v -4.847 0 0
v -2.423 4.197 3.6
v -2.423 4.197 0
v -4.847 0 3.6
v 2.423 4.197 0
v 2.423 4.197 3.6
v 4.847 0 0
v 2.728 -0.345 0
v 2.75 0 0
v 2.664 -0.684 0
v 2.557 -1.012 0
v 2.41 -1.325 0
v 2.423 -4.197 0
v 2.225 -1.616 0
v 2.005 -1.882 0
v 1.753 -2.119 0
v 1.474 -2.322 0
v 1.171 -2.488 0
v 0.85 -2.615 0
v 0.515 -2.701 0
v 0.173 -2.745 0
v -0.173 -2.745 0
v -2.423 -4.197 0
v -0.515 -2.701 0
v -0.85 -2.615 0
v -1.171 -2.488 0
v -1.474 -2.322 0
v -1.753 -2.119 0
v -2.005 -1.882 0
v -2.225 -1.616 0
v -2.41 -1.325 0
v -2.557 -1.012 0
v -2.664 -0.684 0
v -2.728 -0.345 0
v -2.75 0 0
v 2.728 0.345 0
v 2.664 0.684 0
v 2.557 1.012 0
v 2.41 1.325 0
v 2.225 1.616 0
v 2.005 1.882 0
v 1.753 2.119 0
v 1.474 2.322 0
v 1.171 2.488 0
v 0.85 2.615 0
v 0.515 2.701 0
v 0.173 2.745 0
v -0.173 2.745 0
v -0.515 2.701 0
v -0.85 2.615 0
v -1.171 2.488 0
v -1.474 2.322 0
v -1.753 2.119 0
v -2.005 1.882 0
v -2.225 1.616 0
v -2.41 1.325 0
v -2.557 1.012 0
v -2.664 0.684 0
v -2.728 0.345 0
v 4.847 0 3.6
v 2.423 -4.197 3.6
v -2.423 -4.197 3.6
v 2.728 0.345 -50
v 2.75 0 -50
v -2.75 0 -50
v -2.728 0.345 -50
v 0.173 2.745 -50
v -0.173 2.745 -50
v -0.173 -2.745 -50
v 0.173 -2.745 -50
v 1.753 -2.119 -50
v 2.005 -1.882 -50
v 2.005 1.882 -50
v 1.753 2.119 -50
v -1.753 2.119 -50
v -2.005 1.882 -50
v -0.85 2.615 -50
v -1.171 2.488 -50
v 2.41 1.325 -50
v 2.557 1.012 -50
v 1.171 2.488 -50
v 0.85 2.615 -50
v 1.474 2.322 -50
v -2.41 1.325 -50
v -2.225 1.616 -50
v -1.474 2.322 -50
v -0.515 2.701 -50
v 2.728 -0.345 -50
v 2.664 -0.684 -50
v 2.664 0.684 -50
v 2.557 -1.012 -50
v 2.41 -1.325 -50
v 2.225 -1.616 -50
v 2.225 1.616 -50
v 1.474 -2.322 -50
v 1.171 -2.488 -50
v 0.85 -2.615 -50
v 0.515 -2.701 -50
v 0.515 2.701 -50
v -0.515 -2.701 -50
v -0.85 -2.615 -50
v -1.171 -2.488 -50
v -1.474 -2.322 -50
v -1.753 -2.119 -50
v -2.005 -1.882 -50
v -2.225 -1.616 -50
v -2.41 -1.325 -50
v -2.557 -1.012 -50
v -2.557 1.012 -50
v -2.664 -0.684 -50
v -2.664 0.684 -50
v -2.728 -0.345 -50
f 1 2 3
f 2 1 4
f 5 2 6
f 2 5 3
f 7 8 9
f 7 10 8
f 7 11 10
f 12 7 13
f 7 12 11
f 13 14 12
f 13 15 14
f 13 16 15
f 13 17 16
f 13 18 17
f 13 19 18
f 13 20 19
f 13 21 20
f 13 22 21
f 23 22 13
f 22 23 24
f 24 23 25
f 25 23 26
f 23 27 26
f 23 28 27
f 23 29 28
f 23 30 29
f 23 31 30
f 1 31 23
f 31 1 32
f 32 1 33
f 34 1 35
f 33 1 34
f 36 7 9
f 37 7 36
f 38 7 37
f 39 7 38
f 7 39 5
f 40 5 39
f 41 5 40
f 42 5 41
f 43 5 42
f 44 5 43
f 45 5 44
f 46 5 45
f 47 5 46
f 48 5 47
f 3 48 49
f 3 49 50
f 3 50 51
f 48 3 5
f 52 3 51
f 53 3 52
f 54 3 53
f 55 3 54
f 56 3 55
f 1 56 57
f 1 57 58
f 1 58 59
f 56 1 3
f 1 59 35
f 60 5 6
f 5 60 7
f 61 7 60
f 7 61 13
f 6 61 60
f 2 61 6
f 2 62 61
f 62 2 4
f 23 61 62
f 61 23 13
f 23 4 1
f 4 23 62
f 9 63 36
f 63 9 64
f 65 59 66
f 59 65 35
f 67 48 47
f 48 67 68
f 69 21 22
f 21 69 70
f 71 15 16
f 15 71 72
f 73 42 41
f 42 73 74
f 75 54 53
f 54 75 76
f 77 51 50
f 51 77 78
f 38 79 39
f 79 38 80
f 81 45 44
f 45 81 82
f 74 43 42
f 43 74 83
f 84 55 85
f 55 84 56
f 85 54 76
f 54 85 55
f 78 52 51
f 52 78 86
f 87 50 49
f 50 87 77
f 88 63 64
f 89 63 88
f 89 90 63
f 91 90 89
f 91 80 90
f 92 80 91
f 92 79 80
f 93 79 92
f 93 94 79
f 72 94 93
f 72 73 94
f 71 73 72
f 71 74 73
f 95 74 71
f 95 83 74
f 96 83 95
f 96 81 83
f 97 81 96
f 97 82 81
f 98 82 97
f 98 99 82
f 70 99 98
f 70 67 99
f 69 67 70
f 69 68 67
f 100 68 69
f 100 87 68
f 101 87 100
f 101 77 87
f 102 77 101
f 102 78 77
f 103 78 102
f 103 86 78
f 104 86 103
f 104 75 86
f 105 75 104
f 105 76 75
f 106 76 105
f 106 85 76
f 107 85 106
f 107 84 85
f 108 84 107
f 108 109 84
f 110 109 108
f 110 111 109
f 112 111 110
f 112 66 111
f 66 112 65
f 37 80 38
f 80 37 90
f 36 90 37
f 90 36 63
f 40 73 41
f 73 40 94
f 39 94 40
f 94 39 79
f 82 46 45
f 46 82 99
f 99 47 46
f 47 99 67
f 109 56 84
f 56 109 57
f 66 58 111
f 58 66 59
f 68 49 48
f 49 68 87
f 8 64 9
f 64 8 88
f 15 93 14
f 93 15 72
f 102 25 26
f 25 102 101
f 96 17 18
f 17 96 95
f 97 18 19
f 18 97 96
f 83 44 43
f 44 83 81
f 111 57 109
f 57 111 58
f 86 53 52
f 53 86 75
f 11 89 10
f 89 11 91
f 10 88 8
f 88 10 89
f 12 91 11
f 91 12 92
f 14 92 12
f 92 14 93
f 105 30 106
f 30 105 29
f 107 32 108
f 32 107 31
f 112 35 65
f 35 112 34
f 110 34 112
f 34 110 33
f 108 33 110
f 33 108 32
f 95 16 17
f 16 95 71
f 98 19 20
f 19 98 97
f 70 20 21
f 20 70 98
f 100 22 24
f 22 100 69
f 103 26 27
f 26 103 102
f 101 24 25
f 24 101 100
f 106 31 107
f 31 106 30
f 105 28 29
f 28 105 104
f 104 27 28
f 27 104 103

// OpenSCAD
$fn = 50;


difference() {
	union() {
		translate(v = [0, 0, 0]) {
			rotate(a = [0, 0, 0]) {
				translate(v = [0, 0, 0]) {
					rotate(a = [0, 0, 0]) {
						linear_extrude(height = 3.6000000000) {
							polygon(points = [[4.8468000000, 0.0000000000], [2.4234000000, 4.1974519271], [-2.4234000000, 4.1974519271], [-4.8468000000, 0.0000000000], [-2.4234000000, -4.1974519271], [2.4234000000, -4.1974519271]]);
						}
					}
				}
			}
		}
		translate(v = [0, 0, -50]) {
			rotate(a = [0, 0, 0]) {
				cylinder(h = 50, r = 2.7500000000);
			}
		}
	}
	union();
}
